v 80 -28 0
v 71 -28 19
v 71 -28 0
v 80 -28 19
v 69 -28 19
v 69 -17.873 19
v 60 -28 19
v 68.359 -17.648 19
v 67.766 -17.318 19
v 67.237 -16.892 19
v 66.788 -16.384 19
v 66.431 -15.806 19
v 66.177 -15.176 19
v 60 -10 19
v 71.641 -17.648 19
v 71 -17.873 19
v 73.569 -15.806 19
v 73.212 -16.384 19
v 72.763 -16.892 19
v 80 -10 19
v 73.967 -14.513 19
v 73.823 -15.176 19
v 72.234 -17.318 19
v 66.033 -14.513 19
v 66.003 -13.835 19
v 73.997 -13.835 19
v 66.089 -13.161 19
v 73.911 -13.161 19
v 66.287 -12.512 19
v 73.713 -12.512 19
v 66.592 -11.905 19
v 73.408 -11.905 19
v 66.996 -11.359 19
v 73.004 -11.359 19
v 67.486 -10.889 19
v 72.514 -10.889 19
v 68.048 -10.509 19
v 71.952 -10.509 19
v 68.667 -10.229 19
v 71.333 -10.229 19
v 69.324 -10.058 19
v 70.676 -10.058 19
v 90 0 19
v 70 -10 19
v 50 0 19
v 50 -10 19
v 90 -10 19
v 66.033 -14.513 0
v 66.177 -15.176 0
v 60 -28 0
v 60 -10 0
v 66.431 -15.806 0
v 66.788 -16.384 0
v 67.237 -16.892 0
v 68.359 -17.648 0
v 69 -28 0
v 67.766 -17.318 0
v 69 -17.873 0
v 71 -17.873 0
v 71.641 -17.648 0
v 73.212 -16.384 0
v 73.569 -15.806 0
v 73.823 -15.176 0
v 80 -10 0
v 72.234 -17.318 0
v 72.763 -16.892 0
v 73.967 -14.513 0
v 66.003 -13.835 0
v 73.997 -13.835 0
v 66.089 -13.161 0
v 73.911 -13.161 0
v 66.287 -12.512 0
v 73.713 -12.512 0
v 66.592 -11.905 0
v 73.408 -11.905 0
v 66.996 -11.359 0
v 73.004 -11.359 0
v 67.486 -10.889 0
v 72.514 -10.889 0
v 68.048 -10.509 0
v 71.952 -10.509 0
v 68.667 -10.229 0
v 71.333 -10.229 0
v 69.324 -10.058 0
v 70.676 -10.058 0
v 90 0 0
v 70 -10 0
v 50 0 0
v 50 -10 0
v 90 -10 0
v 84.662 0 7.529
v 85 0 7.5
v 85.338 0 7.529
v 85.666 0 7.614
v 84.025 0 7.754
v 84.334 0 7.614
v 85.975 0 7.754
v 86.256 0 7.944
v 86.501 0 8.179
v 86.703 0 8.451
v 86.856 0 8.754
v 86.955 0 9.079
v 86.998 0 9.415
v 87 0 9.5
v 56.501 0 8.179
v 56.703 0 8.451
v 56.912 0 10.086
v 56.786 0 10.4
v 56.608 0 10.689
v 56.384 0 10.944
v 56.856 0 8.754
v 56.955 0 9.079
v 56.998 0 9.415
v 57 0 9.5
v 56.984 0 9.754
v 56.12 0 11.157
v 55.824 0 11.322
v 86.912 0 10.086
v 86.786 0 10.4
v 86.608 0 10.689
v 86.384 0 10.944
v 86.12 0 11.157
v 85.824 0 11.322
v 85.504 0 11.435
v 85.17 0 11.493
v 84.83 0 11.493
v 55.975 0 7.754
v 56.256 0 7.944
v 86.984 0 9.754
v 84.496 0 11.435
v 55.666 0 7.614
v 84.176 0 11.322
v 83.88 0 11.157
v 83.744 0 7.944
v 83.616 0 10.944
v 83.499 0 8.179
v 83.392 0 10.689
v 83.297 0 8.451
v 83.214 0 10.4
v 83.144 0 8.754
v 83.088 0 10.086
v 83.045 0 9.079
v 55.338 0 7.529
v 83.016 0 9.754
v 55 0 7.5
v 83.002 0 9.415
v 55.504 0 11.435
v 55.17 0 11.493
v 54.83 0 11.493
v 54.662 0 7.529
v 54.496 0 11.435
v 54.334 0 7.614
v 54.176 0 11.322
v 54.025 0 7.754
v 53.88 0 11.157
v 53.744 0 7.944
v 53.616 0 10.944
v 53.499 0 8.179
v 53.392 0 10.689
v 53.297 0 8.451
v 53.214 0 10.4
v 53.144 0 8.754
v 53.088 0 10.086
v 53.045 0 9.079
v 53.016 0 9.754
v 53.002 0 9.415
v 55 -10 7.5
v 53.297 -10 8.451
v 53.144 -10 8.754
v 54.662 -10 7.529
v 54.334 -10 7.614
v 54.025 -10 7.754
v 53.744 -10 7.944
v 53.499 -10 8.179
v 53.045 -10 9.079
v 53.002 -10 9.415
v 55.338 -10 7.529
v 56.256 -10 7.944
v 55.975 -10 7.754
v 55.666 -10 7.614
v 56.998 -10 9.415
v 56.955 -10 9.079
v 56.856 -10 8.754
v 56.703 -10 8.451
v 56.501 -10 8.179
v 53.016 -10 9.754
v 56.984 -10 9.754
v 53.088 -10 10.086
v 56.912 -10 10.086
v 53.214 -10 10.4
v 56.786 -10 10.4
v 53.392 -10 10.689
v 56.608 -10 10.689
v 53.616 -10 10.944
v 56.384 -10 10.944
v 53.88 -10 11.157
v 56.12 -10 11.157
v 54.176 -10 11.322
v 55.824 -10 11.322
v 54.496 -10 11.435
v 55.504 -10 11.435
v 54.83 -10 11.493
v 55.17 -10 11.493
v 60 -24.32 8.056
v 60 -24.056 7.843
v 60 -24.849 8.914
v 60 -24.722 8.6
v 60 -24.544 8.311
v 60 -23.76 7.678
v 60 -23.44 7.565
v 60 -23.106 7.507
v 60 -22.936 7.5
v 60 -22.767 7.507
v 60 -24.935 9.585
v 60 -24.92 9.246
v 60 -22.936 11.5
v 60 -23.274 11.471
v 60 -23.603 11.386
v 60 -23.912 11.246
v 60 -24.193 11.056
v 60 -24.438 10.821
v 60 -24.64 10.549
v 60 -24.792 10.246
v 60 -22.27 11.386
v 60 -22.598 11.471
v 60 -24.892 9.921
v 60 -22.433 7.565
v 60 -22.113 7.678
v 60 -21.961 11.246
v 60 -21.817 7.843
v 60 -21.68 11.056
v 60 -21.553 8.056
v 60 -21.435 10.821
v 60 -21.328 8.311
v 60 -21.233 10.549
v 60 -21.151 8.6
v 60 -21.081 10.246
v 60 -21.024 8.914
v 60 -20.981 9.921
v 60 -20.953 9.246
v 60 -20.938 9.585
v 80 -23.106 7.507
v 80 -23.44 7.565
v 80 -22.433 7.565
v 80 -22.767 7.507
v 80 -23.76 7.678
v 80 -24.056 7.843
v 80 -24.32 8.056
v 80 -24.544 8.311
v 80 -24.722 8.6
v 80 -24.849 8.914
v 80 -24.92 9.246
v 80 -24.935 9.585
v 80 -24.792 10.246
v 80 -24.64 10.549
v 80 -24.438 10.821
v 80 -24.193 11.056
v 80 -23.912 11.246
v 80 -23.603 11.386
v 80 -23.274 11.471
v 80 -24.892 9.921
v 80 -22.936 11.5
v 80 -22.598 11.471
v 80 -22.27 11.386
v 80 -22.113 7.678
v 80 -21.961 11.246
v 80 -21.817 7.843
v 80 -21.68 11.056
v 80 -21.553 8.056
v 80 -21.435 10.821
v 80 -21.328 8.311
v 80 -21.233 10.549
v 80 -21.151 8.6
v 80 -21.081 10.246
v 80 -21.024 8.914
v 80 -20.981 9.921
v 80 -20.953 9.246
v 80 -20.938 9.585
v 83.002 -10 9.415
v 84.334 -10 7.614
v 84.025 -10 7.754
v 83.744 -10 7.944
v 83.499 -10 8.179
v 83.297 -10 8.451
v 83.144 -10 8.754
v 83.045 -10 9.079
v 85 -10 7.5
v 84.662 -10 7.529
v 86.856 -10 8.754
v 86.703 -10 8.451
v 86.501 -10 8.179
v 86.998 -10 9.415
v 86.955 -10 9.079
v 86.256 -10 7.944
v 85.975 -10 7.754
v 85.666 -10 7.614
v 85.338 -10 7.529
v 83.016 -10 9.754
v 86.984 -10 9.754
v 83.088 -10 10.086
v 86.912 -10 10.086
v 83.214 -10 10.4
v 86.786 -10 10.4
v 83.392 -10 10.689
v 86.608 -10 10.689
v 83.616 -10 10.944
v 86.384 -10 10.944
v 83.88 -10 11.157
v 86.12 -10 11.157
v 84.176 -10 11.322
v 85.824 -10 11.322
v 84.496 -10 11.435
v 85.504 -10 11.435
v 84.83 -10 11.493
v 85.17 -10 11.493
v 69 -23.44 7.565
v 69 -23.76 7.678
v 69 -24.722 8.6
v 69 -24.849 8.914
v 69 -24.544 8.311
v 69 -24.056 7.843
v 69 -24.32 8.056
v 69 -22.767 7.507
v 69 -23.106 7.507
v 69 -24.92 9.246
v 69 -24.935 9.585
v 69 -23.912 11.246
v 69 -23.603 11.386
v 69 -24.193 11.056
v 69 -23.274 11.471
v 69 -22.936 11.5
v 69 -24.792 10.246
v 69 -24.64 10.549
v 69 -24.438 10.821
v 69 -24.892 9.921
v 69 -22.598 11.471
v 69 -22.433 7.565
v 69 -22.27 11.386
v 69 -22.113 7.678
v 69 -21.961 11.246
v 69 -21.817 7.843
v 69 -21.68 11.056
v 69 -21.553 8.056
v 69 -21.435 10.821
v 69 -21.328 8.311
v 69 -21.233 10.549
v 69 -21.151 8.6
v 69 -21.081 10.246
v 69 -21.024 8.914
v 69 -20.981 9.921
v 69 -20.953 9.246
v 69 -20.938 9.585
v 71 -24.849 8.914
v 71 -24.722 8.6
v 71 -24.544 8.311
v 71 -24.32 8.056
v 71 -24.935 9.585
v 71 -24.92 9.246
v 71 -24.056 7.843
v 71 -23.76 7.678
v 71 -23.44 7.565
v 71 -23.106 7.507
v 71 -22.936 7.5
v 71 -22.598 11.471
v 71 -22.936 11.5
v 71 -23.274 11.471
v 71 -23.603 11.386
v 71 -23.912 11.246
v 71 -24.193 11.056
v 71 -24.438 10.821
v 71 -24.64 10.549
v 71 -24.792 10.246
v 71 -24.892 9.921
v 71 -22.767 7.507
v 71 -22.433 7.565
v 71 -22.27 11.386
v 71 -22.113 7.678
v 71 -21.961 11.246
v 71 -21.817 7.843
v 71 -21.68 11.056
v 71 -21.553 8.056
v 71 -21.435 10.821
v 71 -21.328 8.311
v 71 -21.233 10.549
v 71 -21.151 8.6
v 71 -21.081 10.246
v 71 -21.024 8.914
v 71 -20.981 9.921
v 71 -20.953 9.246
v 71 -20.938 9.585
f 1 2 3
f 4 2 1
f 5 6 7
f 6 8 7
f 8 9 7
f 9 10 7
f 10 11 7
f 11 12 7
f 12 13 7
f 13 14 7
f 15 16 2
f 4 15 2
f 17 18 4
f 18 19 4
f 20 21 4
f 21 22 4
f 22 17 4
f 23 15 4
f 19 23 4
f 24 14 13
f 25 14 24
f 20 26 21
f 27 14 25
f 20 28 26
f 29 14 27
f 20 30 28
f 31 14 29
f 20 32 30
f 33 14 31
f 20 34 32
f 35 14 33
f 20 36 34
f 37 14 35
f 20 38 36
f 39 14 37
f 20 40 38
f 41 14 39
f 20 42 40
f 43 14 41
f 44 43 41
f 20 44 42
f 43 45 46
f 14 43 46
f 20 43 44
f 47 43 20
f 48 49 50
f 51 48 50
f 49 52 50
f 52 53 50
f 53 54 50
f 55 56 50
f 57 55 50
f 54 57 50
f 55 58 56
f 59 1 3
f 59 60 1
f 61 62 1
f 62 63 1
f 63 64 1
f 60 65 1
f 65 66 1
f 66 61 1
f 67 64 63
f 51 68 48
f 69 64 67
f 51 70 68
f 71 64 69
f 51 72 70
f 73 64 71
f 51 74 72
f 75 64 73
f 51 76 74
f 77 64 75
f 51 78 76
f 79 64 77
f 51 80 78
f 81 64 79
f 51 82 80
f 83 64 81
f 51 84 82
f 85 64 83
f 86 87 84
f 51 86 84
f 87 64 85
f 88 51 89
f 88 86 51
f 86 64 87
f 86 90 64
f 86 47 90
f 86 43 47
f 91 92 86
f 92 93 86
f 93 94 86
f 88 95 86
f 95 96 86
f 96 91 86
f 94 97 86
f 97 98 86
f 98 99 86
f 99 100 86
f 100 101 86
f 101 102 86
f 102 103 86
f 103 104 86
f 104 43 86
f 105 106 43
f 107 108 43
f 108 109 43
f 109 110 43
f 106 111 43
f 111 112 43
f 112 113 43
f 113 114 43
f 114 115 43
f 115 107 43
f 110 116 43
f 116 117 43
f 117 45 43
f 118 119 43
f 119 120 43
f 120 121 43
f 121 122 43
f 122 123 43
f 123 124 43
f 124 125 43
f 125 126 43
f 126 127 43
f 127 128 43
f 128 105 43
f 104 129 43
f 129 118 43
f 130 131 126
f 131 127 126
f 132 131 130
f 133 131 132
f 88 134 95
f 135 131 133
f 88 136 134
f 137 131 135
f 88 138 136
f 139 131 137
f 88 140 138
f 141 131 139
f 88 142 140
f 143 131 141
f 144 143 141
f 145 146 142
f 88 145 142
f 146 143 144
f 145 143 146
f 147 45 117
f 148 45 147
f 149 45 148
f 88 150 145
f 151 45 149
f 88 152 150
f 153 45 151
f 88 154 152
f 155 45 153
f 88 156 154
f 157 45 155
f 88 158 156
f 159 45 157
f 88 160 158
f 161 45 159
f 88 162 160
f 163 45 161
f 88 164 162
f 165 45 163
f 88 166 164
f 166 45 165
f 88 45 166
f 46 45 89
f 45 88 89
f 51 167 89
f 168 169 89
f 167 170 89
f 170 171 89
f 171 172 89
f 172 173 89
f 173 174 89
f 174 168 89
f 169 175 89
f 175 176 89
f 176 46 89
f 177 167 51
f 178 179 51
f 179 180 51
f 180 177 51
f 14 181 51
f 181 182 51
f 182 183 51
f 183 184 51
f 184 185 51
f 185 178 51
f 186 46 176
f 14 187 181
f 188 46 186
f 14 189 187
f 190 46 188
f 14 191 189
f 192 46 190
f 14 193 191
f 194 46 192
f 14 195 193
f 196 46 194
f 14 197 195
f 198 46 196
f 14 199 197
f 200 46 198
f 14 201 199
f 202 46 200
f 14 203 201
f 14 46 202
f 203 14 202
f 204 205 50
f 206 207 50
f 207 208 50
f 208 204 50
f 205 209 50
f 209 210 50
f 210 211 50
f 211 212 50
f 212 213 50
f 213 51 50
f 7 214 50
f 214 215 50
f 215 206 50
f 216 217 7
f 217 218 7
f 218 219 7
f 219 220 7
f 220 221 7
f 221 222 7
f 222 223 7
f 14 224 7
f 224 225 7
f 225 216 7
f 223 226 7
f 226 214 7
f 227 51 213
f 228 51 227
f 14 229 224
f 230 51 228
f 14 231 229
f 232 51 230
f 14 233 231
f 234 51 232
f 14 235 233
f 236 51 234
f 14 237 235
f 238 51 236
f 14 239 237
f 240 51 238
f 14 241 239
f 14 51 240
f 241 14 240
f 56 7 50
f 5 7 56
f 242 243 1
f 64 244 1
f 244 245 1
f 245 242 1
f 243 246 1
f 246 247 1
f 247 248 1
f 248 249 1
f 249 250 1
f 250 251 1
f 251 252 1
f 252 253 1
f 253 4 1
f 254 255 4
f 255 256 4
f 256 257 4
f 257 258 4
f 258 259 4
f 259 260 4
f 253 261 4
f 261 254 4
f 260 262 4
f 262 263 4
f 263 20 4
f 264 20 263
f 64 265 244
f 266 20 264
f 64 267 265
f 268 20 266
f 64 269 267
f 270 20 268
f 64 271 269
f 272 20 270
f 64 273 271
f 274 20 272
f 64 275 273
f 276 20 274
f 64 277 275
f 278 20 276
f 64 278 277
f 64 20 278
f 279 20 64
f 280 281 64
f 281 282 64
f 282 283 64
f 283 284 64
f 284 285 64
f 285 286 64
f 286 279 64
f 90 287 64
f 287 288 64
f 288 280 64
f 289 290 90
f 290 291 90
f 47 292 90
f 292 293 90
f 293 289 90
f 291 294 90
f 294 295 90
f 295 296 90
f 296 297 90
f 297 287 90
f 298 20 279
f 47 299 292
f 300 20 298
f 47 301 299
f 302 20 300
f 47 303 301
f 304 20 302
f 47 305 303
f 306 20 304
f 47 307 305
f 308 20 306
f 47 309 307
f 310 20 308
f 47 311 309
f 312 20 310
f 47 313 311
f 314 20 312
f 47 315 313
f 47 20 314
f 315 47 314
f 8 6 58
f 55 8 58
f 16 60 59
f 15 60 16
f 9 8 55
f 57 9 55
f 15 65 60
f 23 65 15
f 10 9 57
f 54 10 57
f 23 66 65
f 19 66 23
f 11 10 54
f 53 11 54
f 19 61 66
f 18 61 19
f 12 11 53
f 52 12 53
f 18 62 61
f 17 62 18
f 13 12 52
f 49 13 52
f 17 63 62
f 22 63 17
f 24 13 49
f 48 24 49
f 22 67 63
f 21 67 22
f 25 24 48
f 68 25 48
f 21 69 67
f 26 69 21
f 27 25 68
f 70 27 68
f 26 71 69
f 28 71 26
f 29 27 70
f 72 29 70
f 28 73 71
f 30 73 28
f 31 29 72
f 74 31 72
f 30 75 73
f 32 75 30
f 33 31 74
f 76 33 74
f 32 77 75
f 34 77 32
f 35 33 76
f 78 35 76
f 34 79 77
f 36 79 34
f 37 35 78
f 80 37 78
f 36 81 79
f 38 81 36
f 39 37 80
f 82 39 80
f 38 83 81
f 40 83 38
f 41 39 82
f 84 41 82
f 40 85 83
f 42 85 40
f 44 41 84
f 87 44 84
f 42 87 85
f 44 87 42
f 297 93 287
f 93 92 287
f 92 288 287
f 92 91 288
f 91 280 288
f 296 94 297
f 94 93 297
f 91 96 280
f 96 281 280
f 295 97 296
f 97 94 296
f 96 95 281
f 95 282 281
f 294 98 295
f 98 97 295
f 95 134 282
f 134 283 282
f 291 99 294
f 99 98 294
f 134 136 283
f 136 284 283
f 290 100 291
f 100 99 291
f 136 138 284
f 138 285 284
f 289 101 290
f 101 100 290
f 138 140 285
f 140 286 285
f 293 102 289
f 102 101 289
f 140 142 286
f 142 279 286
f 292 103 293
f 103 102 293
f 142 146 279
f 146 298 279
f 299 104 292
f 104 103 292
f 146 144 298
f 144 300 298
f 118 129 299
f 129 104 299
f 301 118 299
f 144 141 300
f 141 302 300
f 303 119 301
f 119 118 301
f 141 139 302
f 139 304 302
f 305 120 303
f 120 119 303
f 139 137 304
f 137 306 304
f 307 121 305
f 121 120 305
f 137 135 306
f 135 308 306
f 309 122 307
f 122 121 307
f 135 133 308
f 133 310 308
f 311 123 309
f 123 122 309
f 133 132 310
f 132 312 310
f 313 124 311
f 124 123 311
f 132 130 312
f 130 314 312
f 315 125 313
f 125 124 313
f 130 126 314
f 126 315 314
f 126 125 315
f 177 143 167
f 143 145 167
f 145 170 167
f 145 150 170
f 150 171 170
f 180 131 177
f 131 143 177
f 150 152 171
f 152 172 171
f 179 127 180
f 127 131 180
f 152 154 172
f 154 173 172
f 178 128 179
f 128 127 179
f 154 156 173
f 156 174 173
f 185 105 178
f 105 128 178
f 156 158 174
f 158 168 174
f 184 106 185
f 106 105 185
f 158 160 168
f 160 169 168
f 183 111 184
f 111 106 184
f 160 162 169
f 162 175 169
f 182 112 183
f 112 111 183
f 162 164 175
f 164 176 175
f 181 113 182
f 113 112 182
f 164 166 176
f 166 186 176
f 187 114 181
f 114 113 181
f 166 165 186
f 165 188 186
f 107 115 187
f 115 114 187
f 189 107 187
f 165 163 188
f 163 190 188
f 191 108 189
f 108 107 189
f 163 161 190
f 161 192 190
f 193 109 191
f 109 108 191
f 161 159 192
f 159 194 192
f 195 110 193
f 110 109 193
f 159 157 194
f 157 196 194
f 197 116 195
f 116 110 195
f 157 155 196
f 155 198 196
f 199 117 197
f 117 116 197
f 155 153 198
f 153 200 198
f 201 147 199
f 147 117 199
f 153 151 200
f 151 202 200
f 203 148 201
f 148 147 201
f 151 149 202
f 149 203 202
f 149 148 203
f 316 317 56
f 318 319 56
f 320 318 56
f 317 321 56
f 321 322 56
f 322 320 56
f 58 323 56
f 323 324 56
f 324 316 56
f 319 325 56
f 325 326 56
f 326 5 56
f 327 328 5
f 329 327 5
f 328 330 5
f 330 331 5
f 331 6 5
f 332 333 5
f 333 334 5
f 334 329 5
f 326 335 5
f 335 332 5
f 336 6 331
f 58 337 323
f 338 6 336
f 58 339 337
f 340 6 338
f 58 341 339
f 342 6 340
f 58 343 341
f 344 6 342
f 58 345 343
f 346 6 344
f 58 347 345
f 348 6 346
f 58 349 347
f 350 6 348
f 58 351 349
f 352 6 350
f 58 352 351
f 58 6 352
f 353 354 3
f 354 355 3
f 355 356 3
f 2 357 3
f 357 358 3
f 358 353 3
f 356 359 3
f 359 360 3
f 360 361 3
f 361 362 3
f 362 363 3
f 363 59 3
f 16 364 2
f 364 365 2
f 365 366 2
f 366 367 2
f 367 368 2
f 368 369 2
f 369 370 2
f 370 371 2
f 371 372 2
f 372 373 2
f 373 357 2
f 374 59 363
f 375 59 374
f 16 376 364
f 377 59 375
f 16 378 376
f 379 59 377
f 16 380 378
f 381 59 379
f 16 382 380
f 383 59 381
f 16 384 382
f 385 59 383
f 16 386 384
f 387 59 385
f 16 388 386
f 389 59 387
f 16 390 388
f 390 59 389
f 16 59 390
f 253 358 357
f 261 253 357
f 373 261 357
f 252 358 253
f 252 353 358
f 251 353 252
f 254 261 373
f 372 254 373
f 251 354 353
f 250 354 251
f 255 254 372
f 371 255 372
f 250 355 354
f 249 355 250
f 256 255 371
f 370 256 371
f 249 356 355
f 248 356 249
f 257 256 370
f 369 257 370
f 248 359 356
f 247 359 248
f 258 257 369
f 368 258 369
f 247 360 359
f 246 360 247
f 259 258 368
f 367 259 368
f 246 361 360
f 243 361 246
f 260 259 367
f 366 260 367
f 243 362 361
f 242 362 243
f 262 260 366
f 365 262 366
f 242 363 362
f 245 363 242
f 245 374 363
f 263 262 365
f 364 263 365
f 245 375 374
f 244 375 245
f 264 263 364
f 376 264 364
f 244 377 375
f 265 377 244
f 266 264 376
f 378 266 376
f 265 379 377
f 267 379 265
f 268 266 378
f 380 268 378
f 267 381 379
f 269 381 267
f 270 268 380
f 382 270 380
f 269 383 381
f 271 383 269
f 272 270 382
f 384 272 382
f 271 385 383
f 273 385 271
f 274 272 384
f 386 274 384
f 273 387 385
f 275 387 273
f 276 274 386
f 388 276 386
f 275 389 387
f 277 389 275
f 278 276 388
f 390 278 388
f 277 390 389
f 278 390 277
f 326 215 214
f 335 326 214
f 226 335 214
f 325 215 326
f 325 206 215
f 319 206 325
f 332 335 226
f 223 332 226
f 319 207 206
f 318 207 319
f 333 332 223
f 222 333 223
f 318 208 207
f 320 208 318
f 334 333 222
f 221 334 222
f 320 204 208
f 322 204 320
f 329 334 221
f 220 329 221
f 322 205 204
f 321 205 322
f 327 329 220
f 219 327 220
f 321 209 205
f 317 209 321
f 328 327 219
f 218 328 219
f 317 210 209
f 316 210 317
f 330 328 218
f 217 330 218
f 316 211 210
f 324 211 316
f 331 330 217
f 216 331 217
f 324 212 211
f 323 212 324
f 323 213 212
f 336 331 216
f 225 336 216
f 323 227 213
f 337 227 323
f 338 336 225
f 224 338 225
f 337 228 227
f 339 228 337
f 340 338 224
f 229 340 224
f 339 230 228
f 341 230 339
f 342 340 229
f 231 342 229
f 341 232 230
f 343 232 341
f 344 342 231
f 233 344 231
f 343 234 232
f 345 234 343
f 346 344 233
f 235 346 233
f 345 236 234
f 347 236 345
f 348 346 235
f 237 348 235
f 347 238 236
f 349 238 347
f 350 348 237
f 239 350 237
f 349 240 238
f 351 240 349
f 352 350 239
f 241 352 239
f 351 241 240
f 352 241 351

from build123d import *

# Parameters (mm, degrees)
SKETCH1_R               = 4
BOSS_EXTRUDE1_DEPTH     = 19
SKETCH3_R               = 2
CUT_EXTRUDE2_DEPTH      = 10
SKETCH4_W               = 2
SKETCH4_H               = 25.552295944
CUT_EXTRUDE3_DEPTH      = 19
CUT_EXTRUDE4_DEPTH      = 40.824615503
CUT_EXTRUDE4_DEPTH_BACK = 40.824615503
SKETCH5_R               = 2


with BuildPart() as part:
    # Sketch1 → Boss-Extrude1 (new body)
    with BuildSketch(Plane.XY):
        Polygon((50, 0), (90, 0), (90, -10), (80, -10), (80, -28), (60, -28), (60, -10), (50, -10), align=None)
        with Locations((70, -14)):
            Circle(SKETCH1_R, mode=Mode.SUBTRACT)
    extrude(amount=BOSS_EXTRUDE1_DEPTH)

    # Sketch3 → Cut-Extrude2 (cut)
    with BuildSketch(Plane(origin=(0, -10, 0), x_dir=(-1, 0, 0), z_dir=(0, -1, 0))):
        with Locations(Location((-85, -9.5, 0), (0, 0, 90))):
            Circle(SKETCH3_R)
        with Locations(Location((-55, -9.5, 0), (0, 0, 90))):
            Circle(SKETCH3_R)
    extrude(amount=-CUT_EXTRUDE2_DEPTH, mode=Mode.SUBTRACT)

    # Sketch4 → Cut-Extrude3 (cut)
    with BuildSketch(Plane.XY.offset(19)):
        with Locations((70, -28)):
            Rectangle(SKETCH4_W, SKETCH4_H)
    extrude(amount=-CUT_EXTRUDE3_DEPTH, mode=Mode.SUBTRACT)

    # Sketch5 → Cut-Extrude4 (cut, two sides: drawn at the far end of the back side and taken through both)
    with BuildSketch(Plane.ZY.offset(-71).offset(-CUT_EXTRUDE4_DEPTH_BACK)):
        with Locations((9.5, -22.936491673)):
            Circle(SKETCH5_R)
    extrude(amount=CUT_EXTRUDE4_DEPTH + CUT_EXTRUDE4_DEPTH_BACK, mode=Mode.SUBTRACT)


solid = part.part
